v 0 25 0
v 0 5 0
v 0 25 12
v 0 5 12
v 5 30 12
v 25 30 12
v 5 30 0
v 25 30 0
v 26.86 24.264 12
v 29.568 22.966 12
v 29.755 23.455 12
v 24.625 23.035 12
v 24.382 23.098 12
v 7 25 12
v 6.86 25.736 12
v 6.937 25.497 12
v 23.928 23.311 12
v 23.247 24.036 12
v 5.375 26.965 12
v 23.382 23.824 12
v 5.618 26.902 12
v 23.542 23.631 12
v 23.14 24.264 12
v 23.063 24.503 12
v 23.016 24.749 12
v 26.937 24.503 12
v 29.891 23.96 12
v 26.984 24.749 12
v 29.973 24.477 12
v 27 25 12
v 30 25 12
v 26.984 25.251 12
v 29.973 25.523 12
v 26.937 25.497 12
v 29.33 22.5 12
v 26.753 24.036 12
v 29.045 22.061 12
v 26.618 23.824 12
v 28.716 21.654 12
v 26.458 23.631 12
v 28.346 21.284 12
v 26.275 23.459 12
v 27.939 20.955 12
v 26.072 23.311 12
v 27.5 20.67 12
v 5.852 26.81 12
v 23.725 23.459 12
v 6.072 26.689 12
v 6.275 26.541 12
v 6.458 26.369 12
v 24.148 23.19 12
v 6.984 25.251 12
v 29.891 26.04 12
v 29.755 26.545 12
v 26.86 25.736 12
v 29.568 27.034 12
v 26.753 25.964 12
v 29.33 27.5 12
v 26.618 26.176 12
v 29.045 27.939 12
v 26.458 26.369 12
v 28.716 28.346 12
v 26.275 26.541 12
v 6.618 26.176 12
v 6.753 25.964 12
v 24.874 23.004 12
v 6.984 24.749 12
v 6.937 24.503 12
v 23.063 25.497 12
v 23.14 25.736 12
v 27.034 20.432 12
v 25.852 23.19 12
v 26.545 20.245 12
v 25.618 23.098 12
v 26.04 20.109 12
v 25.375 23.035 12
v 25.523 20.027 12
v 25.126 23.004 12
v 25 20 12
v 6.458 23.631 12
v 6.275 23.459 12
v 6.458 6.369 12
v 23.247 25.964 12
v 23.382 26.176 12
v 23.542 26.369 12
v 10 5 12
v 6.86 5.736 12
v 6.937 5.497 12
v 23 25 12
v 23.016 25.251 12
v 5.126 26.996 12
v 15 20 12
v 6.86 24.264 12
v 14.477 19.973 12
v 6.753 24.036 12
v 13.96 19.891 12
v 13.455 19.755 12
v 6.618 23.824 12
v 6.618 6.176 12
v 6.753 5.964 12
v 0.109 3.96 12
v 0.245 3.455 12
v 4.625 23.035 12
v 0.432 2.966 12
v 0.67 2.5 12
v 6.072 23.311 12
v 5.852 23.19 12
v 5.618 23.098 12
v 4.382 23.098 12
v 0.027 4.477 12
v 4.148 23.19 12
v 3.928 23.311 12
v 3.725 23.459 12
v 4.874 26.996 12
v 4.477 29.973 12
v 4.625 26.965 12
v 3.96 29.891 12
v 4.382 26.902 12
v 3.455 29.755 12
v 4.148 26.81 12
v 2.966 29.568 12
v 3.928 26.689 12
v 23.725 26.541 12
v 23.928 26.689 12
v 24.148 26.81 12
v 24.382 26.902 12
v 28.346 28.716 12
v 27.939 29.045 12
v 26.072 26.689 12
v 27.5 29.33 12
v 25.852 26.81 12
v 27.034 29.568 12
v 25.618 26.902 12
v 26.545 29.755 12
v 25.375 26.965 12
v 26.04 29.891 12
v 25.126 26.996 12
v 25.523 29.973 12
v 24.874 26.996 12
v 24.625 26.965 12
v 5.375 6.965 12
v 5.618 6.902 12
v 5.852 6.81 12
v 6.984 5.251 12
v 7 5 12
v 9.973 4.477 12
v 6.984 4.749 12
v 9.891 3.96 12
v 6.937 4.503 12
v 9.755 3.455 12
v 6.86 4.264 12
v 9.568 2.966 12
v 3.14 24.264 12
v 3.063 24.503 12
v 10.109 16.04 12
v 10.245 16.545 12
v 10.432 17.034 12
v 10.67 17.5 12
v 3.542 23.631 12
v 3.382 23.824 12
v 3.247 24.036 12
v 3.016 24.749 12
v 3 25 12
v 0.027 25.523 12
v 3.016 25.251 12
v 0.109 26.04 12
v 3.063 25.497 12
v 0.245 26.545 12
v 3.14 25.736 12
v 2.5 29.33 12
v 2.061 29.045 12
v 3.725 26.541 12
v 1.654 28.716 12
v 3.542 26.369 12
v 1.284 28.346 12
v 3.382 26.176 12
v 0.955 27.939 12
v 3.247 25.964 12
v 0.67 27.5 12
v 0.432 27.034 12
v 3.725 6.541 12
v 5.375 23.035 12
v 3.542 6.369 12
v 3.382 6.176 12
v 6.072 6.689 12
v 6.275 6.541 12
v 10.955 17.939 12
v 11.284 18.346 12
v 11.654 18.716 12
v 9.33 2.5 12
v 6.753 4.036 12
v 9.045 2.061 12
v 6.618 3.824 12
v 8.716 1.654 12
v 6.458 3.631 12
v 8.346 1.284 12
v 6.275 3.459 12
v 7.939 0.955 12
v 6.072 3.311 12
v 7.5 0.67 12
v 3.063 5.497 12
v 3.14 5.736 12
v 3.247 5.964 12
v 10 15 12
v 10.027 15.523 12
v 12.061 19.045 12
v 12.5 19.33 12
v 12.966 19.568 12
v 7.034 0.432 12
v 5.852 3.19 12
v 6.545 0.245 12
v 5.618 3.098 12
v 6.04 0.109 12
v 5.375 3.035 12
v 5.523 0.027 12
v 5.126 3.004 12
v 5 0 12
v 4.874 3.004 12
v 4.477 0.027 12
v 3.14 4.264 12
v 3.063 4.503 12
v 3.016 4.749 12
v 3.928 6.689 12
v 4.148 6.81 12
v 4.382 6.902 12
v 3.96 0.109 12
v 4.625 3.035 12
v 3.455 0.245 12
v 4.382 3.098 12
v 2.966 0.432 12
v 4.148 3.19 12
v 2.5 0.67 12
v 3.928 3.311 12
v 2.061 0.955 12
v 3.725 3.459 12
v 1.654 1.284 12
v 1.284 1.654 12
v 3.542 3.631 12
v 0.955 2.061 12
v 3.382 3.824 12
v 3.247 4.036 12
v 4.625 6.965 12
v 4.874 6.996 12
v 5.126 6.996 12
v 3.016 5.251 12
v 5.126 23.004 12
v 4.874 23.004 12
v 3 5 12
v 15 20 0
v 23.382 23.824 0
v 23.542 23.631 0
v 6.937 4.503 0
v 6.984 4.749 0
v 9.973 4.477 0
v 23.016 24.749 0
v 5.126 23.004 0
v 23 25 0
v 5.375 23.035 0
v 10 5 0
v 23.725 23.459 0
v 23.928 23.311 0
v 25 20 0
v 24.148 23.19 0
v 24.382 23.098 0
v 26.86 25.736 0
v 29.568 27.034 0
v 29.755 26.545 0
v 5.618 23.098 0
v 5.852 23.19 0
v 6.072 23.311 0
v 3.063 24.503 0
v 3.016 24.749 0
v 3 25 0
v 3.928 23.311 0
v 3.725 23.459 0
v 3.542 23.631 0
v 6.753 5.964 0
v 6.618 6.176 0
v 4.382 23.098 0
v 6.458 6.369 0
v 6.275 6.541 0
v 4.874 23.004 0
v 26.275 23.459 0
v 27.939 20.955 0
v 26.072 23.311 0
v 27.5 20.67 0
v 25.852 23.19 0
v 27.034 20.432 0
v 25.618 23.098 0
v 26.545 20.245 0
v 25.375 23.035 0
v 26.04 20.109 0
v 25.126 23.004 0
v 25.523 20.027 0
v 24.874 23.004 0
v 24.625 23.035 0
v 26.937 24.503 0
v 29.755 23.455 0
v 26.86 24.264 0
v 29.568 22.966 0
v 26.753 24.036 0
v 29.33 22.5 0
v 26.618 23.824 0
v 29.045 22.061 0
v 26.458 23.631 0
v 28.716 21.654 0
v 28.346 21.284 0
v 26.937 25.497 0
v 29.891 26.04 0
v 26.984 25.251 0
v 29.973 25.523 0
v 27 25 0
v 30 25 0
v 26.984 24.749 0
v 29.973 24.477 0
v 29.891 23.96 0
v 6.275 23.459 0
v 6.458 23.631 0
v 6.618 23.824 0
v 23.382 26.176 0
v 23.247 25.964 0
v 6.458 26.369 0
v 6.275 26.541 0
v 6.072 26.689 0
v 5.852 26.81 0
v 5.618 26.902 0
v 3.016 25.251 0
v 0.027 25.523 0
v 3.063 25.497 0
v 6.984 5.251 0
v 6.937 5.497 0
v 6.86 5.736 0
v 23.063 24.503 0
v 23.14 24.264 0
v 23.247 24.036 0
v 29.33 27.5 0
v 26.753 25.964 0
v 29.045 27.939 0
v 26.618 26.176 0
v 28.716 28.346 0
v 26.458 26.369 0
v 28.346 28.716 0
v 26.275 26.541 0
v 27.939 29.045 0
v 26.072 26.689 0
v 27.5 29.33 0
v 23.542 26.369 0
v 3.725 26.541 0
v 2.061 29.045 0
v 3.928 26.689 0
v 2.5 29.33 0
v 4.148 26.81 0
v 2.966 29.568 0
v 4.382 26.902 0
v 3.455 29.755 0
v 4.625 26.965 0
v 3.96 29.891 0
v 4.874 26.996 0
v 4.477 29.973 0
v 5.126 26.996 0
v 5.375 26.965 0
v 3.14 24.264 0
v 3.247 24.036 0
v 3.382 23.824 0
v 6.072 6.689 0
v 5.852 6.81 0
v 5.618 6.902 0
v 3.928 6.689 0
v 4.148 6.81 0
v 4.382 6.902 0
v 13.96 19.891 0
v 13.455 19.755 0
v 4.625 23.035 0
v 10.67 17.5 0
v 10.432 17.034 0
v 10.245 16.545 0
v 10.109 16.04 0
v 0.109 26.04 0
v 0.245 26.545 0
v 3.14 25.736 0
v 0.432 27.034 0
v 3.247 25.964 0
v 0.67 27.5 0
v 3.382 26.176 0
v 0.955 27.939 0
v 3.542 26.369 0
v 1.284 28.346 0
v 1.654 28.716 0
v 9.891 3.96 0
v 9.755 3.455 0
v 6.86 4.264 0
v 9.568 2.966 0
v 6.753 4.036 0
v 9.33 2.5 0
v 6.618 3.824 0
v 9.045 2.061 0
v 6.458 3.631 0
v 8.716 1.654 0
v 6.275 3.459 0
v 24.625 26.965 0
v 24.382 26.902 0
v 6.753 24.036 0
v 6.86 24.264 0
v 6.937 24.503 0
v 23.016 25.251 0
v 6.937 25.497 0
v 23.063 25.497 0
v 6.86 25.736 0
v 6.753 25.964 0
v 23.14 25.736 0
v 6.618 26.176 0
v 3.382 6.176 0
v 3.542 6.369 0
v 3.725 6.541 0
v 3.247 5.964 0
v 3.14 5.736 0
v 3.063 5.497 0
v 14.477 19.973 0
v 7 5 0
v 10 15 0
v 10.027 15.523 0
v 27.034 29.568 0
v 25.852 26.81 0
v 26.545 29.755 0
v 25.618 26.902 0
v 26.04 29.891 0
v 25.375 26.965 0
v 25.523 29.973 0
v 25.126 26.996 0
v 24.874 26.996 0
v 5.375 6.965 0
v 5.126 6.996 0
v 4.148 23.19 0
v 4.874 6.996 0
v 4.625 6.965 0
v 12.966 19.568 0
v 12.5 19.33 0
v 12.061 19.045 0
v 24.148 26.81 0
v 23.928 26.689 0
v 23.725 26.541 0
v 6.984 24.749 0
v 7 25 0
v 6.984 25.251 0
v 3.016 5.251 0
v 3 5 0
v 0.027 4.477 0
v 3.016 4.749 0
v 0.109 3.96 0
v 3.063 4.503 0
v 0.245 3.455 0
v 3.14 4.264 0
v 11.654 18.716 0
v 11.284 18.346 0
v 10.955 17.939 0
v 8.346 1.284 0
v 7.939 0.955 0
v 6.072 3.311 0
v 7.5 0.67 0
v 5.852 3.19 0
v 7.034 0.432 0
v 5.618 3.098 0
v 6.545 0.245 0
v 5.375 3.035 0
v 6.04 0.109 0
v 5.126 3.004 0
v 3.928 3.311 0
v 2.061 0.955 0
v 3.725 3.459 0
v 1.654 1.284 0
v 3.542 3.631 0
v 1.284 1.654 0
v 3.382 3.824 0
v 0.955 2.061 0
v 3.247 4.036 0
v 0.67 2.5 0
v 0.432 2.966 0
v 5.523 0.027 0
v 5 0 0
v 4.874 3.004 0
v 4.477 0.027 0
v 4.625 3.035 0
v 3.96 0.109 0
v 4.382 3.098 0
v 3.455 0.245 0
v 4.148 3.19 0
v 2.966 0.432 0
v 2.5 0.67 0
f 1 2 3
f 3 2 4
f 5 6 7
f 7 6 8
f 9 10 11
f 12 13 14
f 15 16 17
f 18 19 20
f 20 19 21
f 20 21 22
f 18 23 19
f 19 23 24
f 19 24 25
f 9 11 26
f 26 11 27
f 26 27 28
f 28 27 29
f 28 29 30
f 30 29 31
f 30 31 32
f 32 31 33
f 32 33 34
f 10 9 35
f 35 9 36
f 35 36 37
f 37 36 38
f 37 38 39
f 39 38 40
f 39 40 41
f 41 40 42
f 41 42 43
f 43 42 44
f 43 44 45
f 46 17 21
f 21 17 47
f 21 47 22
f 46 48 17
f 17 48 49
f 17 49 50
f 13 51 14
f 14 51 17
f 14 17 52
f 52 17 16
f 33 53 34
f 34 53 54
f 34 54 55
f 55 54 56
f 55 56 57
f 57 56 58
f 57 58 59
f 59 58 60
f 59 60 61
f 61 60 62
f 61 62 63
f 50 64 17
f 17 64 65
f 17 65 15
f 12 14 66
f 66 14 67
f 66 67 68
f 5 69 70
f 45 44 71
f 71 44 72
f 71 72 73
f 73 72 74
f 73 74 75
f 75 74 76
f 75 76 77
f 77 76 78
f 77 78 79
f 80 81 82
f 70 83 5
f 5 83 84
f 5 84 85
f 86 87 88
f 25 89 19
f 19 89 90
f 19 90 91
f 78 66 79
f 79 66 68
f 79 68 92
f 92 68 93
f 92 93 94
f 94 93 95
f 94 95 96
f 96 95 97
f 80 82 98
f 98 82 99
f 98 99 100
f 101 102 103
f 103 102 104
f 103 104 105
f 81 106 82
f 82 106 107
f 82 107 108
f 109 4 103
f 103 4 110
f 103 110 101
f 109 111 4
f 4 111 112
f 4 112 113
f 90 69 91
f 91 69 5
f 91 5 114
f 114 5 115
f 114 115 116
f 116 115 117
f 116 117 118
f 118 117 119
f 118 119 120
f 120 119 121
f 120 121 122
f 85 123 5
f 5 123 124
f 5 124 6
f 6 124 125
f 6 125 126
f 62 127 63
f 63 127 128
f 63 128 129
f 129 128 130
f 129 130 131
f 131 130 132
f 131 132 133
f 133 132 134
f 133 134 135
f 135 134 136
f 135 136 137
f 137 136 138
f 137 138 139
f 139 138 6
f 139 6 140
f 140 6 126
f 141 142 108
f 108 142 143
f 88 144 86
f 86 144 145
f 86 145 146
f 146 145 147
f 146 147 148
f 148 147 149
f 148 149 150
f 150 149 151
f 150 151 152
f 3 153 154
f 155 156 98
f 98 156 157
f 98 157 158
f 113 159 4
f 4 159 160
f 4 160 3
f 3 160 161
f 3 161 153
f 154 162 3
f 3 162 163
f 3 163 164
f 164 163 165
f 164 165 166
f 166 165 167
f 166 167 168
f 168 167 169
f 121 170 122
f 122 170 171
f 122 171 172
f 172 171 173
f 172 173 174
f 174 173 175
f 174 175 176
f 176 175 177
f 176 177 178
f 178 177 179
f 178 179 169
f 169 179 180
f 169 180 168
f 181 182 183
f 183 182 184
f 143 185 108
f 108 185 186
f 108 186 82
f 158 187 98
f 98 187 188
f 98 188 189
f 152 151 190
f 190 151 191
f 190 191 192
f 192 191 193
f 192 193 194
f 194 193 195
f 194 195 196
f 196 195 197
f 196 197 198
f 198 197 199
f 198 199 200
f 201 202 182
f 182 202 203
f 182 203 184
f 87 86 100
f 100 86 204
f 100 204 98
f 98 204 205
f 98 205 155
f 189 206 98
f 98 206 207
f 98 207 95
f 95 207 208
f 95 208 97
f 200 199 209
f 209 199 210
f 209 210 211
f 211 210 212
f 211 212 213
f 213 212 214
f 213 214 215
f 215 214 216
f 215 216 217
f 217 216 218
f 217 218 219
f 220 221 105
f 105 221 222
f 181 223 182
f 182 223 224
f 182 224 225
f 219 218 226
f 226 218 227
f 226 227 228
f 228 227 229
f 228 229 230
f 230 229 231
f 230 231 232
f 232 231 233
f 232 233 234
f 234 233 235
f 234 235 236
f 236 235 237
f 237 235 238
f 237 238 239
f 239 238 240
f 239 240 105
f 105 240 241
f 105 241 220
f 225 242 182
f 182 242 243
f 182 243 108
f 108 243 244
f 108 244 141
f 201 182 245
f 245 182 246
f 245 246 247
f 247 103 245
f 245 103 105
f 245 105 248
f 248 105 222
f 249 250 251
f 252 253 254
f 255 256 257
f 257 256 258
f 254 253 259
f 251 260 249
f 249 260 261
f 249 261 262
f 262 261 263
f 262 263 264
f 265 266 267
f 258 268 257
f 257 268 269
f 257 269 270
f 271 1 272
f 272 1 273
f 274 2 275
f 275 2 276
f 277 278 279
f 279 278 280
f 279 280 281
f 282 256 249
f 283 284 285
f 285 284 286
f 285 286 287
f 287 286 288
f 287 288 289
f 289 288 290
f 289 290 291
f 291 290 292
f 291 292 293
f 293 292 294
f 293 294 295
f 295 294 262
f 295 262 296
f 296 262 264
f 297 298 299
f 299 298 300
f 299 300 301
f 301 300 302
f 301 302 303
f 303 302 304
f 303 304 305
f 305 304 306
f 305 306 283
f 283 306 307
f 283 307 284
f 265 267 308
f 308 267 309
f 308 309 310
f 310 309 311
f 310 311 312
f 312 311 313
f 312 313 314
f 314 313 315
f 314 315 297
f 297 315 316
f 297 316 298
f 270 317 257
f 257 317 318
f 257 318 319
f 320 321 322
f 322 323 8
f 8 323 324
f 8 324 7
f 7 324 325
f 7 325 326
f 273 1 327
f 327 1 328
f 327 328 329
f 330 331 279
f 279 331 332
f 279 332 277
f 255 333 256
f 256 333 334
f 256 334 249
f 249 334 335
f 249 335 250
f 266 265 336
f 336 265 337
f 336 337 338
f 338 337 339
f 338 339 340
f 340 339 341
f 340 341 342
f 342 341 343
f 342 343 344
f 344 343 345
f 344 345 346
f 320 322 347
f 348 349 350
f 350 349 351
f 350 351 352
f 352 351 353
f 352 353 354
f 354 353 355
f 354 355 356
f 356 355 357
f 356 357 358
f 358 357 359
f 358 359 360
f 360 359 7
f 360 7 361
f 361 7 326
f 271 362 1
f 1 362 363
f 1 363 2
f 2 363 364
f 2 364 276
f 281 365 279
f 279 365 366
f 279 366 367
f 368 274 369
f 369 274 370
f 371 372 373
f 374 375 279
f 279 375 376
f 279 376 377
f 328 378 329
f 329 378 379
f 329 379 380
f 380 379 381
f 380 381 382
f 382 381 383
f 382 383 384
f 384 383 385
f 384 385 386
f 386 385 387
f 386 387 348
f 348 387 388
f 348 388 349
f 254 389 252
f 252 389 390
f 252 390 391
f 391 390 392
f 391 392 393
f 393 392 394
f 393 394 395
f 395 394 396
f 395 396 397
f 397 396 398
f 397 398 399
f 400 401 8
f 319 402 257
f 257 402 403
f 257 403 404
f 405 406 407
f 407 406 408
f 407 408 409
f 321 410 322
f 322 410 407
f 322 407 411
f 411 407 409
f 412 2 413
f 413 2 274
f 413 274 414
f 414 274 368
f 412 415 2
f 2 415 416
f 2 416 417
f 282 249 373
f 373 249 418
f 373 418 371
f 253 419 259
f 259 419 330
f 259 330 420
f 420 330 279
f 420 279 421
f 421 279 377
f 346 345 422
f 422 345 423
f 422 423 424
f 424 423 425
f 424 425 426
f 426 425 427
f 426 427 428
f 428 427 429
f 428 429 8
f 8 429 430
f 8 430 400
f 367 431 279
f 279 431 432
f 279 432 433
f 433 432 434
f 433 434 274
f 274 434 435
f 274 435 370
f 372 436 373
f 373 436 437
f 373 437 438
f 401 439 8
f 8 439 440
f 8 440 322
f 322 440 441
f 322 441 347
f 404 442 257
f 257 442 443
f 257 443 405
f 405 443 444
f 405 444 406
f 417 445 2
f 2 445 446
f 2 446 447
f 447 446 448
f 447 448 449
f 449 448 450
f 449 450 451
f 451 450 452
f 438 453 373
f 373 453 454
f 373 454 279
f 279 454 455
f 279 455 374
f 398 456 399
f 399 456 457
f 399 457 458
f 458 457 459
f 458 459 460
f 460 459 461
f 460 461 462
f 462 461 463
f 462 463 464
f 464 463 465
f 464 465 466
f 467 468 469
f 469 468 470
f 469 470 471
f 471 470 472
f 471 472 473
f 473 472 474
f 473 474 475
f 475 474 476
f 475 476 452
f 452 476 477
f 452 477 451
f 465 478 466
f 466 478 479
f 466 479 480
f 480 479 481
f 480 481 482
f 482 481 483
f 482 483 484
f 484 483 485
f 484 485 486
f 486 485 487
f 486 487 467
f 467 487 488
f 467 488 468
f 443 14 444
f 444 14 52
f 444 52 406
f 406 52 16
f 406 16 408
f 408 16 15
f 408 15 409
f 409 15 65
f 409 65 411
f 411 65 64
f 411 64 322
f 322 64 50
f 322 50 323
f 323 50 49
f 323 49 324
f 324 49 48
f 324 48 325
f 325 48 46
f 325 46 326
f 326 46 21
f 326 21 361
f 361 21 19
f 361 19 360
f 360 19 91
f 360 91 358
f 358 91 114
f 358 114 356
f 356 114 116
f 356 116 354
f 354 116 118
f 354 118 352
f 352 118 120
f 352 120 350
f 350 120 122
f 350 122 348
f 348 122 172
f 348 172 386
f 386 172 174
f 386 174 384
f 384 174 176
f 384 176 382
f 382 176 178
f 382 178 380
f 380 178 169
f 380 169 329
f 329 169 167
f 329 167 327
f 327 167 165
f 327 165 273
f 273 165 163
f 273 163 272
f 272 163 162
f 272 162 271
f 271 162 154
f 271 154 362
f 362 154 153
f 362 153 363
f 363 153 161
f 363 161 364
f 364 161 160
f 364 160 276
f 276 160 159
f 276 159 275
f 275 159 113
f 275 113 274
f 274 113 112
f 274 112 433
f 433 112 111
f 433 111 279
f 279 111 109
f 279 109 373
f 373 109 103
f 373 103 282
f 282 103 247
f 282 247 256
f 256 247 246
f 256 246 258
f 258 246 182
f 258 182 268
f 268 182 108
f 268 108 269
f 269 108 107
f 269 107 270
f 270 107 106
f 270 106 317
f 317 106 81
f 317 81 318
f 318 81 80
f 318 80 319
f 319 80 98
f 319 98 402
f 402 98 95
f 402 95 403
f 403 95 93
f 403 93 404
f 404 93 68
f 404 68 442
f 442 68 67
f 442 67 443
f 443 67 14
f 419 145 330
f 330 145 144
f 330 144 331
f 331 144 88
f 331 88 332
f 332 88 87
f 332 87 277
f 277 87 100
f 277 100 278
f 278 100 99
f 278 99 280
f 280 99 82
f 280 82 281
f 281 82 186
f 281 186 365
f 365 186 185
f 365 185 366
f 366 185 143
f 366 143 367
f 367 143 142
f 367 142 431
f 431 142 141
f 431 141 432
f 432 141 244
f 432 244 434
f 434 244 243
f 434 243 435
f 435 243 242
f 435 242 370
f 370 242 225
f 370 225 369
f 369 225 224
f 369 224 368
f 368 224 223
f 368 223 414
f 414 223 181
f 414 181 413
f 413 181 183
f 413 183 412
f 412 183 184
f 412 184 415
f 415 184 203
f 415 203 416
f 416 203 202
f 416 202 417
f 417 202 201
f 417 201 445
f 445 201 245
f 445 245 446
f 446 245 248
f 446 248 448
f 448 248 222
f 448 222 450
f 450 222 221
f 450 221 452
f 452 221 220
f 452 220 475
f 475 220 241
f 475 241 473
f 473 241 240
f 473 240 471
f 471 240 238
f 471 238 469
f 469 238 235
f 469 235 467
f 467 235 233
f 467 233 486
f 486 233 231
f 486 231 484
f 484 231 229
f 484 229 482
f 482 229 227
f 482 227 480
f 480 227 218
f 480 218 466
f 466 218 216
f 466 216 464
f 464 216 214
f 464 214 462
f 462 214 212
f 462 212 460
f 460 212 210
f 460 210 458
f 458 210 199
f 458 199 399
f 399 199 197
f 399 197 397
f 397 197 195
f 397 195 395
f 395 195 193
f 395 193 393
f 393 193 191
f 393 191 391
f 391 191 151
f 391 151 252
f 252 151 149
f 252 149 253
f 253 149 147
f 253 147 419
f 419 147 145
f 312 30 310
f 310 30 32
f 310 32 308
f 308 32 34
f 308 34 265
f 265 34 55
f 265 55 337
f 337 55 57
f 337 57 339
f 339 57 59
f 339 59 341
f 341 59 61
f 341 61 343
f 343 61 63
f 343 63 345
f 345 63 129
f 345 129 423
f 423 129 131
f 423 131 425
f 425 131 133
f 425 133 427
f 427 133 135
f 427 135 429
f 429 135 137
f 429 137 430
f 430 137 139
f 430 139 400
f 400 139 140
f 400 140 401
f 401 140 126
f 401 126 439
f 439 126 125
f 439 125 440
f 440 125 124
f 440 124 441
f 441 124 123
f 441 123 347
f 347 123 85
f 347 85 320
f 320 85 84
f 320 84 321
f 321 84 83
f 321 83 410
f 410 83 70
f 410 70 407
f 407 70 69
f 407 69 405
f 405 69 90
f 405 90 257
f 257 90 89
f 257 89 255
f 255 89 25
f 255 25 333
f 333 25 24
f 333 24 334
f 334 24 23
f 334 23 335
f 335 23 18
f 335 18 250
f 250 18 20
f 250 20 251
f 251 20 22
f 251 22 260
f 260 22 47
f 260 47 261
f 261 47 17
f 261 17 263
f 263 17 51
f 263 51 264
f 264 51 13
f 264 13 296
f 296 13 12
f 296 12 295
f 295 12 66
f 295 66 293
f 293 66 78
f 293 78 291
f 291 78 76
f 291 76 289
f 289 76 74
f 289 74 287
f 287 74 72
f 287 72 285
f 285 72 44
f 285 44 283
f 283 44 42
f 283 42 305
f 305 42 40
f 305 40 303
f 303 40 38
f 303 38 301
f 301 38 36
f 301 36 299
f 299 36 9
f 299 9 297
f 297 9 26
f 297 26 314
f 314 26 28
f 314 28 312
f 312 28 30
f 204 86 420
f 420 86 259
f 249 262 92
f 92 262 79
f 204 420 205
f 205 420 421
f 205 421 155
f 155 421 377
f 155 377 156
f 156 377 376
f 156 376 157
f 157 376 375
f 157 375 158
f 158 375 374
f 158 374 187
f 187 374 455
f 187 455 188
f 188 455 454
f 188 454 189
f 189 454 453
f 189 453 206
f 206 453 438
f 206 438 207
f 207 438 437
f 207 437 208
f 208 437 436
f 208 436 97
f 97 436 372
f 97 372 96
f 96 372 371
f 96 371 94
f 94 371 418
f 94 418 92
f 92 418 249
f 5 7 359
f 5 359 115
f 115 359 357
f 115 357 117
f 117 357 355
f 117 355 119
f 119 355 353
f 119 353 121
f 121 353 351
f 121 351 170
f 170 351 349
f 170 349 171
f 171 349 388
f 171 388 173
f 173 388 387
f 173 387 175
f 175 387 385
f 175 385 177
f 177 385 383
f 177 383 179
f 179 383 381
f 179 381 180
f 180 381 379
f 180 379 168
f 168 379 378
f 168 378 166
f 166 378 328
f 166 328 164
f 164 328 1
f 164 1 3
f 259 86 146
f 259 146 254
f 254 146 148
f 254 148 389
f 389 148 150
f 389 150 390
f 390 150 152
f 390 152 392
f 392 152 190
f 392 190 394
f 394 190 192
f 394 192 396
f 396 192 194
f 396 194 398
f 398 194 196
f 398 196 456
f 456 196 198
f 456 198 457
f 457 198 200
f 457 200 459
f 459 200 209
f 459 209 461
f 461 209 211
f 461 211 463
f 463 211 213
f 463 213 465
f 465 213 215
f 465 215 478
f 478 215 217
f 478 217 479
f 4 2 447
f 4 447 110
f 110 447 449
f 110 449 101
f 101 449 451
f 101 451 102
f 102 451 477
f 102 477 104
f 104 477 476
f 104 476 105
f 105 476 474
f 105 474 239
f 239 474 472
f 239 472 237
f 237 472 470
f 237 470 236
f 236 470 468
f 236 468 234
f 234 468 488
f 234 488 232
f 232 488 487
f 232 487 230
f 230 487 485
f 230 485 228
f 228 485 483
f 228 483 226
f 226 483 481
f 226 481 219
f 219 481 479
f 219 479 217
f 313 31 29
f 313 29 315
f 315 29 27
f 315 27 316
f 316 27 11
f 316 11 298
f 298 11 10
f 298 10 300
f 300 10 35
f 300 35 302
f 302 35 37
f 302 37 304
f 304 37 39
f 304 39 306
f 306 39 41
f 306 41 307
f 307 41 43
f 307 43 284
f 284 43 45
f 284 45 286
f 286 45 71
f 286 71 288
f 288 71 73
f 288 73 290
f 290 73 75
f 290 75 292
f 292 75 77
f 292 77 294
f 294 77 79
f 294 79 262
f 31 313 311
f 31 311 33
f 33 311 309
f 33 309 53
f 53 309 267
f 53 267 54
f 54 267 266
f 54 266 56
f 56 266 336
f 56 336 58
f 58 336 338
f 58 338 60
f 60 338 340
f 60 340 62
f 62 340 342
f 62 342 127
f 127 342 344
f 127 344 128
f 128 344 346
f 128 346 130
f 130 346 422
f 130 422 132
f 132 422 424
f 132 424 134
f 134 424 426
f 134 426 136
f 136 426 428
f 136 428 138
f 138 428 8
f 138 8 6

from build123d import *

# Parameters (mm, degrees)
ESQUISSE1_W                  = 30
ESQUISSE1_H                  = 30
BOSS_EXTRU_1_DEPTH           = 12
ENL_V_MAT_EXTRU_1_DEPTH      = 45.09081537
ENL_V_MAT_EXTRU_1_DEPTH_BACK = 45.09081537
ESQUISSE2_R                  = 2
ENL_V_MAT_EXTRU_2_DEPTH      = 45.09081537
ENL_V_MAT_EXTRU_2_DEPTH_BACK = 45.09081537
ESQUISSE3_W                  = 20
ESQUISSE3_H                  = 20
CONG_1_R                     = 5


with BuildPart() as part:
    # Esquisse1 → Boss.-Extru.1 (new body)
    with BuildSketch(Plane.XY):
        with Locations((15, 15)):
            Rectangle(ESQUISSE1_W, ESQUISSE1_H)
    extrude(amount=BOSS_EXTRU_1_DEPTH)

    # Esquisse2 → Enlèv. mat.-Extru.1 (cut, two sides: drawn at the far end of the back side and taken through both)
    with BuildSketch(Plane.XY.offset(12).offset(-ENL_V_MAT_EXTRU_1_DEPTH_BACK)):
        with Locations((5, 25)):
            Circle(ESQUISSE2_R)
        with Locations(Location((25, 25, 0), (0, 0, 180))):
            Circle(ESQUISSE2_R)
        with Locations((25, 5)):
            Circle(ESQUISSE2_R)
        with Locations(Location((5, 5, 0), (0, 0, 180))):
            Circle(ESQUISSE2_R)
    extrude(amount=ENL_V_MAT_EXTRU_1_DEPTH + ENL_V_MAT_EXTRU_1_DEPTH_BACK, mode=Mode.SUBTRACT)

    # Esquisse3 → Enlèv. mat.-Extru.2 (cut, two sides: drawn at the far end of the back side and taken through both)
    with BuildSketch(Plane.XY.offset(12).offset(-ENL_V_MAT_EXTRU_2_DEPTH_BACK)):
        with Locations((20, 10)):
            Rectangle(ESQUISSE3_W, ESQUISSE3_H)
    extrude(amount=ENL_V_MAT_EXTRU_2_DEPTH + ENL_V_MAT_EXTRU_2_DEPTH_BACK, mode=Mode.SUBTRACT)

    # Congé1
    cong_1_edges = [part.edges().sort_by_distance(p)[0] for p in [
        (10, 20, 6),
        (0, 30, 6),
        (0, 0, 6),
        (10, 0, 6),
        (30, 30, 6),
        (30, 20, 6),
    ]]
    fillet(cong_1_edges, radius=CONG_1_R - 0.0001)  # a hair under: the kernel refuses the full size


solid = part.part
